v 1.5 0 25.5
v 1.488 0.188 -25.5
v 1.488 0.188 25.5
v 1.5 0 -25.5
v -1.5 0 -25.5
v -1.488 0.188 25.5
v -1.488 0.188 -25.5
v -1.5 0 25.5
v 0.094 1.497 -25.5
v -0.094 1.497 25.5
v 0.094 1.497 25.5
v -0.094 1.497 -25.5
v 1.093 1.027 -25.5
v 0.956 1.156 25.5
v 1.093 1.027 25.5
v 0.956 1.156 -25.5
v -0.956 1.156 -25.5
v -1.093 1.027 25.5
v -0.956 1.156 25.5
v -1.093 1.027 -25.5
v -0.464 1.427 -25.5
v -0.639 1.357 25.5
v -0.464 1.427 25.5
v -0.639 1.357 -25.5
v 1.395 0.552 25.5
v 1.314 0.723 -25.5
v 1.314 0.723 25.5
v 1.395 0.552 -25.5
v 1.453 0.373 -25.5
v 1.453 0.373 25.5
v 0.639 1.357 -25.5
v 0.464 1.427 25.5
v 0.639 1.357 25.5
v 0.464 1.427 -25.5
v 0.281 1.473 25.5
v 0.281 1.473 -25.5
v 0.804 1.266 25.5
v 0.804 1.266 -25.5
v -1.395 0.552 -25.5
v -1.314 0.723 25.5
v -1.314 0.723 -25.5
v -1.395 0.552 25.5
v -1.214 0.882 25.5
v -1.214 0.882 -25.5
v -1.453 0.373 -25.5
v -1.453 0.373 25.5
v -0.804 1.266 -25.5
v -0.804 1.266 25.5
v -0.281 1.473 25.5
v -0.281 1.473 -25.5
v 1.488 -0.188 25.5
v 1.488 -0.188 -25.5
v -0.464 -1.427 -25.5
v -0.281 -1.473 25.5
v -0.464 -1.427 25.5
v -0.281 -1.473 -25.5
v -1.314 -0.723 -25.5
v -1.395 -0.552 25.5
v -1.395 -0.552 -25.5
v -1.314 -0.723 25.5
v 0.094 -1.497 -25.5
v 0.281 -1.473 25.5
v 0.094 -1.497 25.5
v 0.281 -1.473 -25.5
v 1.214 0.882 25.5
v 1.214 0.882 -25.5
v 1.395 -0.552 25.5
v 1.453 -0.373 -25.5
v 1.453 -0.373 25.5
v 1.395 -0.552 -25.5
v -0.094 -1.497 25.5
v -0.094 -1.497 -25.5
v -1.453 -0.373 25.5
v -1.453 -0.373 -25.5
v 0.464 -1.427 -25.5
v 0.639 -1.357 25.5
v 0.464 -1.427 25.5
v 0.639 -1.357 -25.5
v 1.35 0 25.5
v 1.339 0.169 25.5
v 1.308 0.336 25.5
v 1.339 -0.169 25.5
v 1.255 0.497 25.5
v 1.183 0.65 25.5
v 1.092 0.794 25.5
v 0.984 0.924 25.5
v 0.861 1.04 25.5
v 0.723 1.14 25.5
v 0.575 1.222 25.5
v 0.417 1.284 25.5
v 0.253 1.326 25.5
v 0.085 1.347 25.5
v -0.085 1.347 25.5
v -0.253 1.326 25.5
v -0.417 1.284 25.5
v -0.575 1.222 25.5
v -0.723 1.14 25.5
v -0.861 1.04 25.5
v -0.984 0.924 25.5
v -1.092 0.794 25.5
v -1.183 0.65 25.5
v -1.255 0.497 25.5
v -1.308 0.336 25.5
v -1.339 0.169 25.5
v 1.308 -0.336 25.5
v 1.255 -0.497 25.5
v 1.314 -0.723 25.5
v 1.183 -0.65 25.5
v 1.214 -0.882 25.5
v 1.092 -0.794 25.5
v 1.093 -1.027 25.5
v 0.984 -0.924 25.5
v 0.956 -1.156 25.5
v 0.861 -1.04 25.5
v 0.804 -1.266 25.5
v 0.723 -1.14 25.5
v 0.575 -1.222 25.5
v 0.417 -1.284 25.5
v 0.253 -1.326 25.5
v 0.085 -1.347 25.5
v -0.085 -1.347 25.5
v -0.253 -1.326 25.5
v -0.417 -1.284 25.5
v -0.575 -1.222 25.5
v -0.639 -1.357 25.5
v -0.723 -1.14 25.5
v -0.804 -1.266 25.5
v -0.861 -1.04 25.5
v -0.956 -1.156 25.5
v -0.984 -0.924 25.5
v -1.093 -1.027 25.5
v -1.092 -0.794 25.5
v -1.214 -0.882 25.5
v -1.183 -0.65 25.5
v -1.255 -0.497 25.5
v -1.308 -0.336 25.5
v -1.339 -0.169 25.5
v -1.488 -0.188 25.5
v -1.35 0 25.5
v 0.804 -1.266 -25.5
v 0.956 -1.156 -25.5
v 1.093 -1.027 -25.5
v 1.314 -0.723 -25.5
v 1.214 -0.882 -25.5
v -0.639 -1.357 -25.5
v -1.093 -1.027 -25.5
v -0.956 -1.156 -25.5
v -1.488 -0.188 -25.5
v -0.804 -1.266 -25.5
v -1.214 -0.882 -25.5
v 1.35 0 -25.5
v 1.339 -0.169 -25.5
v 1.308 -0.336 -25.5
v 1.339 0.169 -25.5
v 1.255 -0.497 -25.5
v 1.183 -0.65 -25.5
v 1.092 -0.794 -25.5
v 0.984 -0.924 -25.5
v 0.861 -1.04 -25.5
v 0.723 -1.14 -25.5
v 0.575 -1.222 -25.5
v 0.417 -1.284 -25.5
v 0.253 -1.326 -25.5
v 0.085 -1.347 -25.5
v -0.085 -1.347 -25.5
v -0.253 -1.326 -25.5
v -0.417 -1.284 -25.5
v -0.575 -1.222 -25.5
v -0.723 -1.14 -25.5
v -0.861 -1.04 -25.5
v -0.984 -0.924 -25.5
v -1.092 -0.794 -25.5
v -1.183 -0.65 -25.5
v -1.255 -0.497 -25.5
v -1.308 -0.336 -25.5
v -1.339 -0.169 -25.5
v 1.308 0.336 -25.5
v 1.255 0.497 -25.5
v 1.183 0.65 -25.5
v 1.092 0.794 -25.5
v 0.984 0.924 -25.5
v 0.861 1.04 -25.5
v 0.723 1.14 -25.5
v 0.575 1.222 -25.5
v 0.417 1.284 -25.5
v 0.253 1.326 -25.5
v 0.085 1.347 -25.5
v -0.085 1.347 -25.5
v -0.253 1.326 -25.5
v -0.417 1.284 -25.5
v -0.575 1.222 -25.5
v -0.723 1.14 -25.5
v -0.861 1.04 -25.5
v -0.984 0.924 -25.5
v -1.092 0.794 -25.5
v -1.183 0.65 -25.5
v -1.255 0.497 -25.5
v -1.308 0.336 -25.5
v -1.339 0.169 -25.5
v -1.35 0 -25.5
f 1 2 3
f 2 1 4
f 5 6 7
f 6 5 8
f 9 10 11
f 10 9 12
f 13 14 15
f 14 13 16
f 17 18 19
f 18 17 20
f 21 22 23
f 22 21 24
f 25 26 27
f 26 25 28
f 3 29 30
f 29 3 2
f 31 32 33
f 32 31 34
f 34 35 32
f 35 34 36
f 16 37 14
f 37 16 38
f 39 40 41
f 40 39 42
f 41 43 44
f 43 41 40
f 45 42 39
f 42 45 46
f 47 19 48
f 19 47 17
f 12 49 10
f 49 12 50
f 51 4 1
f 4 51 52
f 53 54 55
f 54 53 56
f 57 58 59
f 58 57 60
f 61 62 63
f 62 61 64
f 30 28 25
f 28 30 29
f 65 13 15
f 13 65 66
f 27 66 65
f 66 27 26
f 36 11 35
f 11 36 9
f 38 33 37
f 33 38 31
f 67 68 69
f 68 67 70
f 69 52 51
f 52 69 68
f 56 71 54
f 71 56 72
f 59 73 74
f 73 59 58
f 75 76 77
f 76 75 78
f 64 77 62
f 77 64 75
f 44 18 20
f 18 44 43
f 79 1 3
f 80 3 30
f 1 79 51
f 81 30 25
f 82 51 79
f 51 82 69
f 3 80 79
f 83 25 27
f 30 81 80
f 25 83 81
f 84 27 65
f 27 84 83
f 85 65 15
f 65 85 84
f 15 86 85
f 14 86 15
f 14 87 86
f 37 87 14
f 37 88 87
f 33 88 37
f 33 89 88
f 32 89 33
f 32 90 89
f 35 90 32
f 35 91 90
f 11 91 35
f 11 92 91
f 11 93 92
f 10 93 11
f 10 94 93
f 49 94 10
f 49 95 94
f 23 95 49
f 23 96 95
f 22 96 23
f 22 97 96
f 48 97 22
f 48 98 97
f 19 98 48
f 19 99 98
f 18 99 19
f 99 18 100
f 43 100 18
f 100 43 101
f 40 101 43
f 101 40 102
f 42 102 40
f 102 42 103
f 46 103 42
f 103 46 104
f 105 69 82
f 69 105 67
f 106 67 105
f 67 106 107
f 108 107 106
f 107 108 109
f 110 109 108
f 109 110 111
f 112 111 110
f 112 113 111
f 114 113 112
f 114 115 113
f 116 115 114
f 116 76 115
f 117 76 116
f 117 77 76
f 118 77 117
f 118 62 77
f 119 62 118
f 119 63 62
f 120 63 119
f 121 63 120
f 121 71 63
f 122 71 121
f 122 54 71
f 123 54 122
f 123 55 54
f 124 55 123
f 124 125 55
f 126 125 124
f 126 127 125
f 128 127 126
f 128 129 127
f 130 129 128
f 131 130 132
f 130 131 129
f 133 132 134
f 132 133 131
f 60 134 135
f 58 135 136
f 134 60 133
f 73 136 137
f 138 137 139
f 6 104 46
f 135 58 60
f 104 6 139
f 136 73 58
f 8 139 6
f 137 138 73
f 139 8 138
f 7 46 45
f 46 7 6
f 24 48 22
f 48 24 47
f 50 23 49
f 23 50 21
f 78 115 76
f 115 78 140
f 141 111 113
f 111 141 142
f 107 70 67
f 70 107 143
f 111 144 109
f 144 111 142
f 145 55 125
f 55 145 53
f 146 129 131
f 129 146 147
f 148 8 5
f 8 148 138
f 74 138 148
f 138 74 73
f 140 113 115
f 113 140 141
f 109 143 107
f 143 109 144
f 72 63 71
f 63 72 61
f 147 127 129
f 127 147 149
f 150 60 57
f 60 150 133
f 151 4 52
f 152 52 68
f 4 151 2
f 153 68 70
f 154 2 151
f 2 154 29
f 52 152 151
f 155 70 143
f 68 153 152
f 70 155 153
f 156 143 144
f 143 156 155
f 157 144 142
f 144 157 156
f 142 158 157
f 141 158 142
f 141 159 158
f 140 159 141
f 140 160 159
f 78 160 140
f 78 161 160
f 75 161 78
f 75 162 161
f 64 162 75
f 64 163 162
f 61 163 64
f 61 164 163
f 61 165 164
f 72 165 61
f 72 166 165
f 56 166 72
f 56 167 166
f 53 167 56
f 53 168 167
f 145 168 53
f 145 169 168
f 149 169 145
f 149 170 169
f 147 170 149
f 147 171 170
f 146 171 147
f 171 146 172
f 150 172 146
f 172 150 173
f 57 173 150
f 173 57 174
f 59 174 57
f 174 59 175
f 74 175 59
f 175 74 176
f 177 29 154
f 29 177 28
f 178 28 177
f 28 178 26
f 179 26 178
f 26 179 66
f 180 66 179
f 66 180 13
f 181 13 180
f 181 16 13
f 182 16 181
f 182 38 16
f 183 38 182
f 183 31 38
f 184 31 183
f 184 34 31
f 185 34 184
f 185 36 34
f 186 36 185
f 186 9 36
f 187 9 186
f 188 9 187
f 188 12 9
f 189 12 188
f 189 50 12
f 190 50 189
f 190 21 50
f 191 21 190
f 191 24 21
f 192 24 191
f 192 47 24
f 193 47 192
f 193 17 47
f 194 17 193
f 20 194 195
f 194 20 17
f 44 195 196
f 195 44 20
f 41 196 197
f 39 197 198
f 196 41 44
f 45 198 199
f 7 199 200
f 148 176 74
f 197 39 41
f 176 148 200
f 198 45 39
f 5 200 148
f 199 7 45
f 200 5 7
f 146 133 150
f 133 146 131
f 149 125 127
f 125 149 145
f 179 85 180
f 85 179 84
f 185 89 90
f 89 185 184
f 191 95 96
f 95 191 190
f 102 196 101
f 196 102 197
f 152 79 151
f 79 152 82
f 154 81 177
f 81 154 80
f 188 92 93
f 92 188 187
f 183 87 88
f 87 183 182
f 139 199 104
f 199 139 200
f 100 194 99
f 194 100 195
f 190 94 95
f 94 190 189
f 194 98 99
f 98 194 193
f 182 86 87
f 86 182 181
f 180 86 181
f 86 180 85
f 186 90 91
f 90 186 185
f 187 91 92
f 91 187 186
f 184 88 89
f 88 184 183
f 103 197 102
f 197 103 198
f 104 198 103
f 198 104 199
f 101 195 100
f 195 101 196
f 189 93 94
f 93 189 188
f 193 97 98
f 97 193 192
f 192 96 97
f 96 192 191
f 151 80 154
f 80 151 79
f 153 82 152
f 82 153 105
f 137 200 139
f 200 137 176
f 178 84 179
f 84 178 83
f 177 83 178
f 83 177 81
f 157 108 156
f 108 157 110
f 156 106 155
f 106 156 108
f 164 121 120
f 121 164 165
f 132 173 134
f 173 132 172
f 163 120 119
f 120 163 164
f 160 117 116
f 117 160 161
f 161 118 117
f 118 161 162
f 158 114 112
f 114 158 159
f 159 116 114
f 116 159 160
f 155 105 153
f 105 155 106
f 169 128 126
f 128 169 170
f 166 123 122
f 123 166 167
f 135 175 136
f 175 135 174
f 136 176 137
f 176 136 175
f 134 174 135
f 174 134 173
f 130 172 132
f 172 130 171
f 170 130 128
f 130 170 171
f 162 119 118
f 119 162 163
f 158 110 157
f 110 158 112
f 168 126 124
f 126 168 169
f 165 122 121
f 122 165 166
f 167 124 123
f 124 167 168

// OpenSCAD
$fn = 50;


difference() {
	union() {
		translate(v = [0, 0, -25.5000000000]) {
			cylinder(h = 51, r = 1.5000000000);
		}
	}
	union() {
		translate(v = [0, 0, -100.0000000000]) {
			cylinder(h = 200, r = 1.3500000000);
		}
	}
}
